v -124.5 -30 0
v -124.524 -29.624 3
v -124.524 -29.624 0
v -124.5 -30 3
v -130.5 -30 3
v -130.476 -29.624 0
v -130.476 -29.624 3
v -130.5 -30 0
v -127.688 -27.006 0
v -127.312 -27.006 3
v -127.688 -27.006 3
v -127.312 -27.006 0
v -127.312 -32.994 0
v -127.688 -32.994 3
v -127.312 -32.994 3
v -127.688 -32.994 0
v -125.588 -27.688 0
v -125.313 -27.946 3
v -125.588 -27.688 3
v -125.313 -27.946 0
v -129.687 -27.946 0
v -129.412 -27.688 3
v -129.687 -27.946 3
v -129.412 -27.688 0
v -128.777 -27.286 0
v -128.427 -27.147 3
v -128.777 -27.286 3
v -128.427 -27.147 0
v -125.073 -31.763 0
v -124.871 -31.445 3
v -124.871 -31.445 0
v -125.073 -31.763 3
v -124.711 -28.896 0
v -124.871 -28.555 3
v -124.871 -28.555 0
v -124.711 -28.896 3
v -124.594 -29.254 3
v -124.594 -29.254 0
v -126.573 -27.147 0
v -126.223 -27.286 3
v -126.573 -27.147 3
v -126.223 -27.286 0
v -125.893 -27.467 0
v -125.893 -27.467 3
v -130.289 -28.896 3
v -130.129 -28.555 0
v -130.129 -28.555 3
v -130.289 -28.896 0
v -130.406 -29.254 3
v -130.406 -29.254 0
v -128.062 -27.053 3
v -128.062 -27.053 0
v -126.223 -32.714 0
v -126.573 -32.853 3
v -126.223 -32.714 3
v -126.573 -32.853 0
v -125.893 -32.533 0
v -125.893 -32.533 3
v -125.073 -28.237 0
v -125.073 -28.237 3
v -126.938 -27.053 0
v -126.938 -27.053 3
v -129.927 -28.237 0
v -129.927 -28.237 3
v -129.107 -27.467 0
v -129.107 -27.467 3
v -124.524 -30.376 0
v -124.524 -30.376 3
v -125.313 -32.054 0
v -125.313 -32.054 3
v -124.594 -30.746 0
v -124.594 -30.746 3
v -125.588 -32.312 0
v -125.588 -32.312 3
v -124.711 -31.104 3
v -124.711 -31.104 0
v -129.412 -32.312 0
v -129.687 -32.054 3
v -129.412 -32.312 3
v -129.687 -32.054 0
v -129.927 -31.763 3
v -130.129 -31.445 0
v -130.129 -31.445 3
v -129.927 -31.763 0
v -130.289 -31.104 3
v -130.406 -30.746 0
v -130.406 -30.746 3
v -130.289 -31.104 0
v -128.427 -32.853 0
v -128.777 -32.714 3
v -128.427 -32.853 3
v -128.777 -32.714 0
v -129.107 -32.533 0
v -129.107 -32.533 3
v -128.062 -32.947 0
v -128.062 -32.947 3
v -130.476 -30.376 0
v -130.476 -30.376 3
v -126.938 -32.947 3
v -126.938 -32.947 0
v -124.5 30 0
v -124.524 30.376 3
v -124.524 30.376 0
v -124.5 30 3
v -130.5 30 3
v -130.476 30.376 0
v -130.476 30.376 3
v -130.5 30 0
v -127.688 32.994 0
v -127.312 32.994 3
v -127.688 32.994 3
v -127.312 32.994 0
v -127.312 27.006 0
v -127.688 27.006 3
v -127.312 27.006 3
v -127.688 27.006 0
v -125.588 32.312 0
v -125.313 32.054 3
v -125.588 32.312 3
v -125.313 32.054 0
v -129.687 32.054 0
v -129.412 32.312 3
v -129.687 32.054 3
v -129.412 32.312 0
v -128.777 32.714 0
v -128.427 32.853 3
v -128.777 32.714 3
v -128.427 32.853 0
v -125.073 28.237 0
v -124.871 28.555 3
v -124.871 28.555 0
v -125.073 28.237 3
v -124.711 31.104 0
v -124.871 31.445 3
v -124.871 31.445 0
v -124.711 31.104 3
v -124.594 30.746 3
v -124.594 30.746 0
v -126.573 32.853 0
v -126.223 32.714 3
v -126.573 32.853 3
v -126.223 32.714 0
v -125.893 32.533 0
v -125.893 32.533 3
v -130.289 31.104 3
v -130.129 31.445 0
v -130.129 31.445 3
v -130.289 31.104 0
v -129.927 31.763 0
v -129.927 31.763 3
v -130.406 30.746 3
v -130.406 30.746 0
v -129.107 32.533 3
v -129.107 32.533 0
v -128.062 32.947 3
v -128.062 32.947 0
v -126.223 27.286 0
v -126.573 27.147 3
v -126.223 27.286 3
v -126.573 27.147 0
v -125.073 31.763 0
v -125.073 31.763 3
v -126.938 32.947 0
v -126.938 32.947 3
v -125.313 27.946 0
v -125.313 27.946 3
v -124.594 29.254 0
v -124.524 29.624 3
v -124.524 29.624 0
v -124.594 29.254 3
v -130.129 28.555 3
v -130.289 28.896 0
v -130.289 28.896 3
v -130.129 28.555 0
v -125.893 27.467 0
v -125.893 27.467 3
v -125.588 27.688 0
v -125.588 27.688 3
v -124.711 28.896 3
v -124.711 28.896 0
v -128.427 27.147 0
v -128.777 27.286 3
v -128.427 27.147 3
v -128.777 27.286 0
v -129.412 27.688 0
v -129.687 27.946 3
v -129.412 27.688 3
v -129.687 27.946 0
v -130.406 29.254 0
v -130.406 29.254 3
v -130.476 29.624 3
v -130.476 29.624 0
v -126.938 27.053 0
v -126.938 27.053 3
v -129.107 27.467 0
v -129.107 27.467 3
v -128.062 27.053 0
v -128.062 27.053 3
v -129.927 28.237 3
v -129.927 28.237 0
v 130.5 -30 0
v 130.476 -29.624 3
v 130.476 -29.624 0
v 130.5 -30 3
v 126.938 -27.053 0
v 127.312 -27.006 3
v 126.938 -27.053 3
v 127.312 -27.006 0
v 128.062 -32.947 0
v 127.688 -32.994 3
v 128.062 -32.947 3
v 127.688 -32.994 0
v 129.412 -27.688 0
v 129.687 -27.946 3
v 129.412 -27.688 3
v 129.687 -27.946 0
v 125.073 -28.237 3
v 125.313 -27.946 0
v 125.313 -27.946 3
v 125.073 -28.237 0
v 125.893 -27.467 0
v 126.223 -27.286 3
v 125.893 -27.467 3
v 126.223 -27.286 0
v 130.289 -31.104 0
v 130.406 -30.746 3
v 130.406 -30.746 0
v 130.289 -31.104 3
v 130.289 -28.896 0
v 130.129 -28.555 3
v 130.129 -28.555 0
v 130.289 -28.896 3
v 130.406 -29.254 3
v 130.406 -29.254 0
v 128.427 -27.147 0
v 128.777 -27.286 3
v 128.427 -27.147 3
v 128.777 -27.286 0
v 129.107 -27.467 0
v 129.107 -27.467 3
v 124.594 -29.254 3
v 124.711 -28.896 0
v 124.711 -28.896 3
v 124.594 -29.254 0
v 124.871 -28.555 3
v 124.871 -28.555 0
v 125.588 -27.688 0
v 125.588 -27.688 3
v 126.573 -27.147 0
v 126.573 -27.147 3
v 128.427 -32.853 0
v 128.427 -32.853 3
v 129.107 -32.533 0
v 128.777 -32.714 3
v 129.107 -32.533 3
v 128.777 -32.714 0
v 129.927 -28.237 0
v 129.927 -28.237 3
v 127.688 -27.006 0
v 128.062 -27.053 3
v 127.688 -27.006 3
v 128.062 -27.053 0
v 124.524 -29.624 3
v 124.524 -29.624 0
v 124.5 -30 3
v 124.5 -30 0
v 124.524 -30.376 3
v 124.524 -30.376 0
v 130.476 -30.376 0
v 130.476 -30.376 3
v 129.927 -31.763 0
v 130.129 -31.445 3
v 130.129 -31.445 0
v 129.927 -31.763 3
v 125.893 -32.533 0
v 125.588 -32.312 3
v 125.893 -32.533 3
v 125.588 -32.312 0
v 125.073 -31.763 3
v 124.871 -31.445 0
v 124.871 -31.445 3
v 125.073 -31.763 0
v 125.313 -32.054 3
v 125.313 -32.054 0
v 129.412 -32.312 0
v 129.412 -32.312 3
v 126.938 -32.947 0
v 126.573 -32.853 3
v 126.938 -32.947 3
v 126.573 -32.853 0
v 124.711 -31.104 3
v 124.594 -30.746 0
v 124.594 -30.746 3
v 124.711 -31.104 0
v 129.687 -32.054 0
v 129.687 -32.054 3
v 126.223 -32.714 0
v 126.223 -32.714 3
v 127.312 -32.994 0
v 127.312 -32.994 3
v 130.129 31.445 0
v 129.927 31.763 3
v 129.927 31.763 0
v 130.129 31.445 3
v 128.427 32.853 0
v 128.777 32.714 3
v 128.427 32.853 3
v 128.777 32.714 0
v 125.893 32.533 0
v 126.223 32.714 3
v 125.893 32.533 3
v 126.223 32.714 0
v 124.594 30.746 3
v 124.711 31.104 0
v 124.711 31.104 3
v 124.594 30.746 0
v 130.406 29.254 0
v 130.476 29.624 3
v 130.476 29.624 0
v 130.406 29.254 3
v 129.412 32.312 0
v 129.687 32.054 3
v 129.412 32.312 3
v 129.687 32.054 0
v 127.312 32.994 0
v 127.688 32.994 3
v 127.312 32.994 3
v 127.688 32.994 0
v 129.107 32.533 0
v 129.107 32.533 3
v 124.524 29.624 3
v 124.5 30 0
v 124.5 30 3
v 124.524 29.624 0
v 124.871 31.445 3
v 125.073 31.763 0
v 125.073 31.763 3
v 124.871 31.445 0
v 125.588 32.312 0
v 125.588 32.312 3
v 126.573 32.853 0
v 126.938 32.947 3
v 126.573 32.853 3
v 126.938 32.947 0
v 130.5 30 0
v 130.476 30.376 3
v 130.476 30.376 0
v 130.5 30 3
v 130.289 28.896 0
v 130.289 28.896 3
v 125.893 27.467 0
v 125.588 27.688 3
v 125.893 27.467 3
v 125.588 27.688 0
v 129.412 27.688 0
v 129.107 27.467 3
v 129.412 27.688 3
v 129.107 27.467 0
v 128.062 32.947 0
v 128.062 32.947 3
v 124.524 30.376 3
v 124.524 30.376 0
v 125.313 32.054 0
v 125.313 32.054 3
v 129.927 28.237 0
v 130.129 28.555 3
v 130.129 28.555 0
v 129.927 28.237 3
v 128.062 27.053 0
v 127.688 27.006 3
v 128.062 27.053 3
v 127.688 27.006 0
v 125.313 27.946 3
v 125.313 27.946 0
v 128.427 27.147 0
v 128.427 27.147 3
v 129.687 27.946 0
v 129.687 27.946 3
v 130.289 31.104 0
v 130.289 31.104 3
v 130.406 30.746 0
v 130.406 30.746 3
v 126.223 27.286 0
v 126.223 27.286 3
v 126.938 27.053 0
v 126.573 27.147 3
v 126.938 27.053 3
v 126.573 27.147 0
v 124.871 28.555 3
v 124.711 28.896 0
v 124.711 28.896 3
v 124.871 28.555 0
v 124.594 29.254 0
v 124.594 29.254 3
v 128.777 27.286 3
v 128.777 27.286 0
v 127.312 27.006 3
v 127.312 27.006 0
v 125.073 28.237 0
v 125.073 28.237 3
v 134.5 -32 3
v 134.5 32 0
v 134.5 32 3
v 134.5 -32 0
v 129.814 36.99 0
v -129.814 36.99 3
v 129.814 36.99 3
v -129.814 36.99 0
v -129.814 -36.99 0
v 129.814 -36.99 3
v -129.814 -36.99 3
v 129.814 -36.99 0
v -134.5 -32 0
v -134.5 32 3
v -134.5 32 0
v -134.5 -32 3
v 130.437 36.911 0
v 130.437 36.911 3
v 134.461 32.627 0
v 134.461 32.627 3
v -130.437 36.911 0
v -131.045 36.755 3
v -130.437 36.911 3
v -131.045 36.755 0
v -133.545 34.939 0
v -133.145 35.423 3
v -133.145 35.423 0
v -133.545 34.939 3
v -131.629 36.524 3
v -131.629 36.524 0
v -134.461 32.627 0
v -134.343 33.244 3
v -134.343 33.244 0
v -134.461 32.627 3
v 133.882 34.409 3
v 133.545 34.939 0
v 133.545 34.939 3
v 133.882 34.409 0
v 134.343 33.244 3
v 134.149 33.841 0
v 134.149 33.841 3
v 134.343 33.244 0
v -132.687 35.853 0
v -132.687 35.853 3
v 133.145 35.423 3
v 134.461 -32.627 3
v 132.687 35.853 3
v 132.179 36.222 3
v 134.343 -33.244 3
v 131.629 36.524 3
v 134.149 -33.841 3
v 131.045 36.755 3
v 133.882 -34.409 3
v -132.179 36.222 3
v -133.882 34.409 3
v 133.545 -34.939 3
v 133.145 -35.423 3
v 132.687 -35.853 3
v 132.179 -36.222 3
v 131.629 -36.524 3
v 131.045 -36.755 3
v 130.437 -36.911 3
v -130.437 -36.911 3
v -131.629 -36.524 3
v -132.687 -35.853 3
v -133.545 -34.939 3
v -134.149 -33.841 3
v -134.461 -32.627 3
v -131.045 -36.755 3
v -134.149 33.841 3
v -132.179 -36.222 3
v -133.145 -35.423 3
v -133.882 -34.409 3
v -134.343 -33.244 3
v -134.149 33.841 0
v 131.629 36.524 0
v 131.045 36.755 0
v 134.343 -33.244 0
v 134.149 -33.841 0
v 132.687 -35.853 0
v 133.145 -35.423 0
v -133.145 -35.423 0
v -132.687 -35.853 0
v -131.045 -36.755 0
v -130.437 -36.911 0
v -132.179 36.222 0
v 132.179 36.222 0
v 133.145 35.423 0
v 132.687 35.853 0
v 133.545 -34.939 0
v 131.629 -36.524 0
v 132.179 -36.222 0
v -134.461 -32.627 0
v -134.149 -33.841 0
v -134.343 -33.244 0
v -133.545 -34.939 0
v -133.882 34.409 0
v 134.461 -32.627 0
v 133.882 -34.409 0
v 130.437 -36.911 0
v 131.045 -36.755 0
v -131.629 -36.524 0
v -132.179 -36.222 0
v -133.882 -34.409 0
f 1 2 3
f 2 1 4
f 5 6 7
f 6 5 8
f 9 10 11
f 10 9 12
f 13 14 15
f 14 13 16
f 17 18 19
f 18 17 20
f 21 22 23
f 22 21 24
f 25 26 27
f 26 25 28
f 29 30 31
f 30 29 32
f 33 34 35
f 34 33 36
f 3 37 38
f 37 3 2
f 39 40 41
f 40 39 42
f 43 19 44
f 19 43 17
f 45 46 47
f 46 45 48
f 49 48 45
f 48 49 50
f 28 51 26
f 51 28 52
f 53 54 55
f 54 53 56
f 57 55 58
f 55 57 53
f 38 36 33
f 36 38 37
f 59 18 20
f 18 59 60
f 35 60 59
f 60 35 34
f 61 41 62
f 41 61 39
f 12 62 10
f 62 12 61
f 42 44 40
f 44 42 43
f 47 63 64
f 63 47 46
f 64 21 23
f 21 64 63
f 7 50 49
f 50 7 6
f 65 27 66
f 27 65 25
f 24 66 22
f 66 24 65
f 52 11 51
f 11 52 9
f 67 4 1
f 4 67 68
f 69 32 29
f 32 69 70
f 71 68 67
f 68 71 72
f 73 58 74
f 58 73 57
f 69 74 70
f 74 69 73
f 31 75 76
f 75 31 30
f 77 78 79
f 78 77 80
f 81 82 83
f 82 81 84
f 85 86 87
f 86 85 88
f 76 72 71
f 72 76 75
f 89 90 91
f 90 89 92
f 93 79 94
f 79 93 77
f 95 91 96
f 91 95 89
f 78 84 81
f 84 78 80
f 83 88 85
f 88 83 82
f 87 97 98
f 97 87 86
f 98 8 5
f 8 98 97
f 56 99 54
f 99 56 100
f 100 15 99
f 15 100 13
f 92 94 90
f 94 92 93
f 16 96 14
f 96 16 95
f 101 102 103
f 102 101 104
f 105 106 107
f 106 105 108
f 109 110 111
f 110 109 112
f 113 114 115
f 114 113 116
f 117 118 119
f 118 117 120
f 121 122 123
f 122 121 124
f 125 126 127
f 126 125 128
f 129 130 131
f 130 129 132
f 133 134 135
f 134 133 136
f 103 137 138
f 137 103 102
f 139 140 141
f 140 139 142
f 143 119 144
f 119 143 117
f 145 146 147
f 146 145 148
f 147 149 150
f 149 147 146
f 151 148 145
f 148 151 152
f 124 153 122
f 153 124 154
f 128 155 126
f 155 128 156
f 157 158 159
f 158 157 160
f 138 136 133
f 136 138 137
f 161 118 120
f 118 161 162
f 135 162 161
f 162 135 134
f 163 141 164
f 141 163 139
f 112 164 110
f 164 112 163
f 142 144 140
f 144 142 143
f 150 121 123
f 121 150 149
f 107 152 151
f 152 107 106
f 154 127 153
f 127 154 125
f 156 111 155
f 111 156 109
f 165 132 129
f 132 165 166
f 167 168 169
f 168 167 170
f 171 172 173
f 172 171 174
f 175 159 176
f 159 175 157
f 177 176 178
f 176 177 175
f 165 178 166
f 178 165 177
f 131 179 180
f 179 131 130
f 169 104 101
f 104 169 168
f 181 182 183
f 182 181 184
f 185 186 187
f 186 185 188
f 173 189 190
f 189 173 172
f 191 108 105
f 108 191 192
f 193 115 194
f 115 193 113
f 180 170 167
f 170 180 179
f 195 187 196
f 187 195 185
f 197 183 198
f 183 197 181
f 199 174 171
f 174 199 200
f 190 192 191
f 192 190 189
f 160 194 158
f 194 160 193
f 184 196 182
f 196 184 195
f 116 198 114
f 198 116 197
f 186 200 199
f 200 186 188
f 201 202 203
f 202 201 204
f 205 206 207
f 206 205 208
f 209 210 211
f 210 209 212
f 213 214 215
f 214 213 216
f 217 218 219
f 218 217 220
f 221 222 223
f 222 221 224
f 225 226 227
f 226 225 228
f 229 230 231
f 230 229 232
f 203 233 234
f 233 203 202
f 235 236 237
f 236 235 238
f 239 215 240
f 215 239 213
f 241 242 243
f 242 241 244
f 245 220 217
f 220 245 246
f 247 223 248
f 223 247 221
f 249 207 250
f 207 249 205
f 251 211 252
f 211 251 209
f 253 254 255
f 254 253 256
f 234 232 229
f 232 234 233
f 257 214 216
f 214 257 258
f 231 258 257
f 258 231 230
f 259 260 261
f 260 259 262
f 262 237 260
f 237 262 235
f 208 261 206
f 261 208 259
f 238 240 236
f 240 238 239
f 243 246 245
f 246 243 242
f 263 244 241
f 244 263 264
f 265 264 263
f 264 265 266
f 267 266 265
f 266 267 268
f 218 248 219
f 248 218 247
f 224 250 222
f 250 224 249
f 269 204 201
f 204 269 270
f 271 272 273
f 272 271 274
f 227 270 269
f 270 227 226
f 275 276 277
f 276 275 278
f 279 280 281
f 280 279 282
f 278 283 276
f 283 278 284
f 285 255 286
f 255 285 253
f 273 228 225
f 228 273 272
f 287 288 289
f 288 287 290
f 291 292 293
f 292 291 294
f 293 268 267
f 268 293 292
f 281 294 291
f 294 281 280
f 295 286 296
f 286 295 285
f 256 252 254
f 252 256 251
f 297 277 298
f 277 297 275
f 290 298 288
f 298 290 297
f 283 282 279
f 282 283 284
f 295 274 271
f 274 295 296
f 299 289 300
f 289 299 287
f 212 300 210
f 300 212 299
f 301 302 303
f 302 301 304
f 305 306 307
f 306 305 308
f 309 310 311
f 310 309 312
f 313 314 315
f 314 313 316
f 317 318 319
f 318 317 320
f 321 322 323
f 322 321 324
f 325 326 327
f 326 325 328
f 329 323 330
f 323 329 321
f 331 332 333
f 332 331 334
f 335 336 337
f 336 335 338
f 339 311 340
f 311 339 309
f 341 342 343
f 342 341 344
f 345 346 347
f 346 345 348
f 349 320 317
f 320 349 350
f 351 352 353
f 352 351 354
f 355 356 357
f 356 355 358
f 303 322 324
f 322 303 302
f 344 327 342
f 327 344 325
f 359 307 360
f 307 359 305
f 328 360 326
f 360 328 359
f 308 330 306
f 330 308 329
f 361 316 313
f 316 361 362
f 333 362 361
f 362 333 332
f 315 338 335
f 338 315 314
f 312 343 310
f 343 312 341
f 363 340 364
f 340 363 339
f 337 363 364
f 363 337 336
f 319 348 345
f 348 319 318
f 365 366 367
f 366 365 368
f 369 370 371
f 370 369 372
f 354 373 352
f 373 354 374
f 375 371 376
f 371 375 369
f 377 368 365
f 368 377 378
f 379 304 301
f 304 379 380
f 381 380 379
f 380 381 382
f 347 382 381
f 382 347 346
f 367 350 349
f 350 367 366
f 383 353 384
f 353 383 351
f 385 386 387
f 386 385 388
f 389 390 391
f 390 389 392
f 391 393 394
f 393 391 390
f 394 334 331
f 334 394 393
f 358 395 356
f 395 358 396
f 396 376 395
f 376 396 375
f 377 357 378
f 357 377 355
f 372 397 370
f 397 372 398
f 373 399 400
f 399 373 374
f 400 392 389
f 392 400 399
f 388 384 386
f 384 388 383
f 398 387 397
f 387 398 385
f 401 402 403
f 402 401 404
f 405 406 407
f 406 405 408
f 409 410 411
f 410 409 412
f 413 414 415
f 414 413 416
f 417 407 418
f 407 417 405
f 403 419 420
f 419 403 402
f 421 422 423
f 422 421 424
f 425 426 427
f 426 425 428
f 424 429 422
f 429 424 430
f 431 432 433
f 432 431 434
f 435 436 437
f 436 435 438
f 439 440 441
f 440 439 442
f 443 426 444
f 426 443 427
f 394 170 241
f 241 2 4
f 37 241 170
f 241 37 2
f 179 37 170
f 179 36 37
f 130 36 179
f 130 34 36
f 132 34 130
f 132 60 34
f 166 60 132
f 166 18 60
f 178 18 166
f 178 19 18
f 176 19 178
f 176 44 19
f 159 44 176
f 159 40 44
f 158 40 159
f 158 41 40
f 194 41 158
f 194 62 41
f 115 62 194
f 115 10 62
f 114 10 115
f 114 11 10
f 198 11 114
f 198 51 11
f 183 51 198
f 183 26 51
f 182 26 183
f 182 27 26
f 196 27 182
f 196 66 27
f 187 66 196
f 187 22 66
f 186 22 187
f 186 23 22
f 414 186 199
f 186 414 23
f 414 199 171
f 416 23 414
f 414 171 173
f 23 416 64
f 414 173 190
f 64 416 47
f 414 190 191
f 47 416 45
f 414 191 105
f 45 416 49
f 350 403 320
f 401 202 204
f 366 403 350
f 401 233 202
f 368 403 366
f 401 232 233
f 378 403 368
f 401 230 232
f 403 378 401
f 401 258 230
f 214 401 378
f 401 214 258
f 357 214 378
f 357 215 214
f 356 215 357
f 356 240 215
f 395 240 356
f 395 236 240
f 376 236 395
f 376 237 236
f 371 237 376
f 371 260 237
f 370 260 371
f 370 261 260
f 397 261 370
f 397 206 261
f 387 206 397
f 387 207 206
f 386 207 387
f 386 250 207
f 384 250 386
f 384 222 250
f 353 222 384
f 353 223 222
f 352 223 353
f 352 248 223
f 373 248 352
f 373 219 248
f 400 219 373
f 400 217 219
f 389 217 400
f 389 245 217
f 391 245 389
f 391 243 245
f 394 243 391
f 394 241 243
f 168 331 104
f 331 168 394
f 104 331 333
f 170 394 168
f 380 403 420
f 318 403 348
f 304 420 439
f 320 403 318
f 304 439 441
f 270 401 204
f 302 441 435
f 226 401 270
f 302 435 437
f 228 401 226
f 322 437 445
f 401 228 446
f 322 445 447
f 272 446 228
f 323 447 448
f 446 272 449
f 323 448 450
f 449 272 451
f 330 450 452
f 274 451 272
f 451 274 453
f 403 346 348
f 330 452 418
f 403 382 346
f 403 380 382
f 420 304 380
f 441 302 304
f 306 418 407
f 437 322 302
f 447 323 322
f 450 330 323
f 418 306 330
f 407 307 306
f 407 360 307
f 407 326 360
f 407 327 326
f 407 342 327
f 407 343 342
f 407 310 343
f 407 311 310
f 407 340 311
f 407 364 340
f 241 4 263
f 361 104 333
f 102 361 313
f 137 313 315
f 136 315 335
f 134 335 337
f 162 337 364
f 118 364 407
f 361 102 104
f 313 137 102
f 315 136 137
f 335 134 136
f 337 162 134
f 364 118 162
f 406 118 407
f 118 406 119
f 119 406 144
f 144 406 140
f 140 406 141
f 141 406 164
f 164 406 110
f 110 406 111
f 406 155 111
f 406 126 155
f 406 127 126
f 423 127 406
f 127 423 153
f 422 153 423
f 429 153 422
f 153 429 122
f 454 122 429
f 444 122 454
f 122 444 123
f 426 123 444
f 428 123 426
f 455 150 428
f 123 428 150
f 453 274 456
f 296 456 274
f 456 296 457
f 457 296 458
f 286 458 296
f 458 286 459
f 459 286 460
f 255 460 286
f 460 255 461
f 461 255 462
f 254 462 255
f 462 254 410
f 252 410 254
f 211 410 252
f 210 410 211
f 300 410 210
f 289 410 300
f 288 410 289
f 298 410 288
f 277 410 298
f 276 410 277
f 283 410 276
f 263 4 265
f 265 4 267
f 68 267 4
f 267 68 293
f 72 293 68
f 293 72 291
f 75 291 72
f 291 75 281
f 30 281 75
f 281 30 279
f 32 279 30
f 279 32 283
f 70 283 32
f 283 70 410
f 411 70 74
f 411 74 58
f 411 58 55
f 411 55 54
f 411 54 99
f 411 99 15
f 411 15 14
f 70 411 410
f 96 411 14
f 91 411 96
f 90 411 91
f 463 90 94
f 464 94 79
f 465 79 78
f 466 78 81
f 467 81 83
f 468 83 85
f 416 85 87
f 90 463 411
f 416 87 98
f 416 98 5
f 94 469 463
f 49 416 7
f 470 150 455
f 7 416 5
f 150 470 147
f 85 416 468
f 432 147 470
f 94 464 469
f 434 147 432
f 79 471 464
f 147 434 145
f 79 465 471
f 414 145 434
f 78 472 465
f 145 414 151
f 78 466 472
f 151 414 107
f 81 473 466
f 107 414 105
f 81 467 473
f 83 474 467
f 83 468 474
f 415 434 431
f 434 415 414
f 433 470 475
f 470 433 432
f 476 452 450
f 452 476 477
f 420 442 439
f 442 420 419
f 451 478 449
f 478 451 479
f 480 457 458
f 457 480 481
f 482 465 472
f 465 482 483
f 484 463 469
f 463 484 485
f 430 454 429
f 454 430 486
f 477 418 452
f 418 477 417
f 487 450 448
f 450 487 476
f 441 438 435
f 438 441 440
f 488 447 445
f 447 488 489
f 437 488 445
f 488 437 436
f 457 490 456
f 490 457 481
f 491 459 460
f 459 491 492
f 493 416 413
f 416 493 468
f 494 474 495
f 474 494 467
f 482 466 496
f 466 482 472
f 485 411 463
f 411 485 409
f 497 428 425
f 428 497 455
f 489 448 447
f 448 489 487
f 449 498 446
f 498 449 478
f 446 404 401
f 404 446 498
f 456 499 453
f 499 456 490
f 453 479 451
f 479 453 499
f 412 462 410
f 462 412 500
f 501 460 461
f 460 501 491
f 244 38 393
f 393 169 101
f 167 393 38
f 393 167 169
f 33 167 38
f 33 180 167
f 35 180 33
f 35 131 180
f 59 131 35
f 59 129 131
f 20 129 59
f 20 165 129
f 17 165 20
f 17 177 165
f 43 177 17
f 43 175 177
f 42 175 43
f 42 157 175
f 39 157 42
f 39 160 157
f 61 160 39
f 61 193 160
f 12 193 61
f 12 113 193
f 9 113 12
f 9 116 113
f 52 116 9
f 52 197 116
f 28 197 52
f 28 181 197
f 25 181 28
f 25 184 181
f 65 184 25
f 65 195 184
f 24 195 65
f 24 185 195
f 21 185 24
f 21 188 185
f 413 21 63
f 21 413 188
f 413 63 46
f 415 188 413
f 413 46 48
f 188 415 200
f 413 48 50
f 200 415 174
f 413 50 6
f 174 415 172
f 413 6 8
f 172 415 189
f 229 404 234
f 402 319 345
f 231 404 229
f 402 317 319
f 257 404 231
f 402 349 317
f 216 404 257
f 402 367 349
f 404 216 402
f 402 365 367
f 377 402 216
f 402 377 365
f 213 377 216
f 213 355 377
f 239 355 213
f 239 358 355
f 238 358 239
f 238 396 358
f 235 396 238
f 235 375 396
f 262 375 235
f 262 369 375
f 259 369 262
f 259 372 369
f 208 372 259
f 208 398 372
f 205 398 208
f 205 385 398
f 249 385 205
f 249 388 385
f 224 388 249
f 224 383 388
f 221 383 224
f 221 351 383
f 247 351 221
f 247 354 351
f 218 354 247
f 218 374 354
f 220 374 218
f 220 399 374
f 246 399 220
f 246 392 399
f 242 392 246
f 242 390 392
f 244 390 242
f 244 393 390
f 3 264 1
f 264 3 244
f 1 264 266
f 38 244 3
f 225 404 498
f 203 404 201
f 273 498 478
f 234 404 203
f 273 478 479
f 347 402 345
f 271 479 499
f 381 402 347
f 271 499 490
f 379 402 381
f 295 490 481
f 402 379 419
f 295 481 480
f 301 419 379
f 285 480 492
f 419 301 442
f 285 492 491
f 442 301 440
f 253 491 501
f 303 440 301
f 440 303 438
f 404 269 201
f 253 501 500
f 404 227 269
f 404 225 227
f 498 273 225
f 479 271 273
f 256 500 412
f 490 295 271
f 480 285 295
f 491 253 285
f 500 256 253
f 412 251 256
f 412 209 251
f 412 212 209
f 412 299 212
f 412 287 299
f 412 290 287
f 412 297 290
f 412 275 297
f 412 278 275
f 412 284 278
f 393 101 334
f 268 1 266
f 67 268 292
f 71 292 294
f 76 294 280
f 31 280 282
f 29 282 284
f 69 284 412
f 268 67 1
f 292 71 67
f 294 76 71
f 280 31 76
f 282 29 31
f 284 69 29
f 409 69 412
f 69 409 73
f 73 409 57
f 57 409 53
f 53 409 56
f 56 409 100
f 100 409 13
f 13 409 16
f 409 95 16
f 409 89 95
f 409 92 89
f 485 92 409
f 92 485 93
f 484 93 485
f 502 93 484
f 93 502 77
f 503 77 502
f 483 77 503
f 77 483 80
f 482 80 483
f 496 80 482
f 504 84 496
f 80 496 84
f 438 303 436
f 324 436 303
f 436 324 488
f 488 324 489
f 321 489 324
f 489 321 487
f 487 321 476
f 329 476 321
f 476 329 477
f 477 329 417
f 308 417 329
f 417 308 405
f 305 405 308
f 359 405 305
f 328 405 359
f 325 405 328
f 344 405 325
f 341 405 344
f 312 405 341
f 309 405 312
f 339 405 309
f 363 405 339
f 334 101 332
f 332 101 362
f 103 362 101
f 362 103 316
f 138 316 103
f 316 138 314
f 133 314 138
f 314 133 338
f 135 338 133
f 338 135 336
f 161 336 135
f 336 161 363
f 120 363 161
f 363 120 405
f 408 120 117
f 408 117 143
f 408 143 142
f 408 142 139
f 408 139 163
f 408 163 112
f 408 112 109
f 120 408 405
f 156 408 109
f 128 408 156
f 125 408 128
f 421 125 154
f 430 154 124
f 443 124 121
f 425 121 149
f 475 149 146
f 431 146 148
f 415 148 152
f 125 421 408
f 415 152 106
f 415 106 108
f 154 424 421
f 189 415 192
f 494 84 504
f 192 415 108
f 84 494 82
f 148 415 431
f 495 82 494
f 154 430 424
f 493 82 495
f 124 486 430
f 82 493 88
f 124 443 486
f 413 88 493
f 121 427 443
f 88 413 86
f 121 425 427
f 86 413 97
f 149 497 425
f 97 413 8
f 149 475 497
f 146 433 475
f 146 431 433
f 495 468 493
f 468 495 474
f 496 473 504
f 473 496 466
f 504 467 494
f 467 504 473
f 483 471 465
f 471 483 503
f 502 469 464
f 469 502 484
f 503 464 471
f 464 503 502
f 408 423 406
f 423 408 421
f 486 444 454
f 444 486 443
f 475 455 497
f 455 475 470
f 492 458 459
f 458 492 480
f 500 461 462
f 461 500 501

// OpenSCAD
$fn = 50;


difference() {
	union() {
		hull() {
			translate(v = [-129.5000000000, 32.0000000000, 0]) {
				cylinder(h = 3, r = 5);
			}
			translate(v = [129.5000000000, 32.0000000000, 0]) {
				cylinder(h = 3, r = 5);
			}
			translate(v = [-129.5000000000, -32.0000000000, 0]) {
				cylinder(h = 3, r = 5);
			}
			translate(v = [129.5000000000, -32.0000000000, 0]) {
				cylinder(h = 3, r = 5);
			}
		}
	}
	union() {
		translate(v = [-127.5000000000, -30.0000000000, -100.0000000000]) {
			cylinder(h = 200, r = 3.0000000000);
		}
		translate(v = [-127.5000000000, 30.0000000000, -100.0000000000]) {
			cylinder(h = 200, r = 3.0000000000);
		}
		translate(v = [127.5000000000, -30.0000000000, -100.0000000000]) {
			cylinder(h = 200, r = 3.0000000000);
		}
		translate(v = [127.5000000000, 30.0000000000, -100.0000000000]) {
			cylinder(h = 200, r = 3.0000000000);
		}
	}
}
